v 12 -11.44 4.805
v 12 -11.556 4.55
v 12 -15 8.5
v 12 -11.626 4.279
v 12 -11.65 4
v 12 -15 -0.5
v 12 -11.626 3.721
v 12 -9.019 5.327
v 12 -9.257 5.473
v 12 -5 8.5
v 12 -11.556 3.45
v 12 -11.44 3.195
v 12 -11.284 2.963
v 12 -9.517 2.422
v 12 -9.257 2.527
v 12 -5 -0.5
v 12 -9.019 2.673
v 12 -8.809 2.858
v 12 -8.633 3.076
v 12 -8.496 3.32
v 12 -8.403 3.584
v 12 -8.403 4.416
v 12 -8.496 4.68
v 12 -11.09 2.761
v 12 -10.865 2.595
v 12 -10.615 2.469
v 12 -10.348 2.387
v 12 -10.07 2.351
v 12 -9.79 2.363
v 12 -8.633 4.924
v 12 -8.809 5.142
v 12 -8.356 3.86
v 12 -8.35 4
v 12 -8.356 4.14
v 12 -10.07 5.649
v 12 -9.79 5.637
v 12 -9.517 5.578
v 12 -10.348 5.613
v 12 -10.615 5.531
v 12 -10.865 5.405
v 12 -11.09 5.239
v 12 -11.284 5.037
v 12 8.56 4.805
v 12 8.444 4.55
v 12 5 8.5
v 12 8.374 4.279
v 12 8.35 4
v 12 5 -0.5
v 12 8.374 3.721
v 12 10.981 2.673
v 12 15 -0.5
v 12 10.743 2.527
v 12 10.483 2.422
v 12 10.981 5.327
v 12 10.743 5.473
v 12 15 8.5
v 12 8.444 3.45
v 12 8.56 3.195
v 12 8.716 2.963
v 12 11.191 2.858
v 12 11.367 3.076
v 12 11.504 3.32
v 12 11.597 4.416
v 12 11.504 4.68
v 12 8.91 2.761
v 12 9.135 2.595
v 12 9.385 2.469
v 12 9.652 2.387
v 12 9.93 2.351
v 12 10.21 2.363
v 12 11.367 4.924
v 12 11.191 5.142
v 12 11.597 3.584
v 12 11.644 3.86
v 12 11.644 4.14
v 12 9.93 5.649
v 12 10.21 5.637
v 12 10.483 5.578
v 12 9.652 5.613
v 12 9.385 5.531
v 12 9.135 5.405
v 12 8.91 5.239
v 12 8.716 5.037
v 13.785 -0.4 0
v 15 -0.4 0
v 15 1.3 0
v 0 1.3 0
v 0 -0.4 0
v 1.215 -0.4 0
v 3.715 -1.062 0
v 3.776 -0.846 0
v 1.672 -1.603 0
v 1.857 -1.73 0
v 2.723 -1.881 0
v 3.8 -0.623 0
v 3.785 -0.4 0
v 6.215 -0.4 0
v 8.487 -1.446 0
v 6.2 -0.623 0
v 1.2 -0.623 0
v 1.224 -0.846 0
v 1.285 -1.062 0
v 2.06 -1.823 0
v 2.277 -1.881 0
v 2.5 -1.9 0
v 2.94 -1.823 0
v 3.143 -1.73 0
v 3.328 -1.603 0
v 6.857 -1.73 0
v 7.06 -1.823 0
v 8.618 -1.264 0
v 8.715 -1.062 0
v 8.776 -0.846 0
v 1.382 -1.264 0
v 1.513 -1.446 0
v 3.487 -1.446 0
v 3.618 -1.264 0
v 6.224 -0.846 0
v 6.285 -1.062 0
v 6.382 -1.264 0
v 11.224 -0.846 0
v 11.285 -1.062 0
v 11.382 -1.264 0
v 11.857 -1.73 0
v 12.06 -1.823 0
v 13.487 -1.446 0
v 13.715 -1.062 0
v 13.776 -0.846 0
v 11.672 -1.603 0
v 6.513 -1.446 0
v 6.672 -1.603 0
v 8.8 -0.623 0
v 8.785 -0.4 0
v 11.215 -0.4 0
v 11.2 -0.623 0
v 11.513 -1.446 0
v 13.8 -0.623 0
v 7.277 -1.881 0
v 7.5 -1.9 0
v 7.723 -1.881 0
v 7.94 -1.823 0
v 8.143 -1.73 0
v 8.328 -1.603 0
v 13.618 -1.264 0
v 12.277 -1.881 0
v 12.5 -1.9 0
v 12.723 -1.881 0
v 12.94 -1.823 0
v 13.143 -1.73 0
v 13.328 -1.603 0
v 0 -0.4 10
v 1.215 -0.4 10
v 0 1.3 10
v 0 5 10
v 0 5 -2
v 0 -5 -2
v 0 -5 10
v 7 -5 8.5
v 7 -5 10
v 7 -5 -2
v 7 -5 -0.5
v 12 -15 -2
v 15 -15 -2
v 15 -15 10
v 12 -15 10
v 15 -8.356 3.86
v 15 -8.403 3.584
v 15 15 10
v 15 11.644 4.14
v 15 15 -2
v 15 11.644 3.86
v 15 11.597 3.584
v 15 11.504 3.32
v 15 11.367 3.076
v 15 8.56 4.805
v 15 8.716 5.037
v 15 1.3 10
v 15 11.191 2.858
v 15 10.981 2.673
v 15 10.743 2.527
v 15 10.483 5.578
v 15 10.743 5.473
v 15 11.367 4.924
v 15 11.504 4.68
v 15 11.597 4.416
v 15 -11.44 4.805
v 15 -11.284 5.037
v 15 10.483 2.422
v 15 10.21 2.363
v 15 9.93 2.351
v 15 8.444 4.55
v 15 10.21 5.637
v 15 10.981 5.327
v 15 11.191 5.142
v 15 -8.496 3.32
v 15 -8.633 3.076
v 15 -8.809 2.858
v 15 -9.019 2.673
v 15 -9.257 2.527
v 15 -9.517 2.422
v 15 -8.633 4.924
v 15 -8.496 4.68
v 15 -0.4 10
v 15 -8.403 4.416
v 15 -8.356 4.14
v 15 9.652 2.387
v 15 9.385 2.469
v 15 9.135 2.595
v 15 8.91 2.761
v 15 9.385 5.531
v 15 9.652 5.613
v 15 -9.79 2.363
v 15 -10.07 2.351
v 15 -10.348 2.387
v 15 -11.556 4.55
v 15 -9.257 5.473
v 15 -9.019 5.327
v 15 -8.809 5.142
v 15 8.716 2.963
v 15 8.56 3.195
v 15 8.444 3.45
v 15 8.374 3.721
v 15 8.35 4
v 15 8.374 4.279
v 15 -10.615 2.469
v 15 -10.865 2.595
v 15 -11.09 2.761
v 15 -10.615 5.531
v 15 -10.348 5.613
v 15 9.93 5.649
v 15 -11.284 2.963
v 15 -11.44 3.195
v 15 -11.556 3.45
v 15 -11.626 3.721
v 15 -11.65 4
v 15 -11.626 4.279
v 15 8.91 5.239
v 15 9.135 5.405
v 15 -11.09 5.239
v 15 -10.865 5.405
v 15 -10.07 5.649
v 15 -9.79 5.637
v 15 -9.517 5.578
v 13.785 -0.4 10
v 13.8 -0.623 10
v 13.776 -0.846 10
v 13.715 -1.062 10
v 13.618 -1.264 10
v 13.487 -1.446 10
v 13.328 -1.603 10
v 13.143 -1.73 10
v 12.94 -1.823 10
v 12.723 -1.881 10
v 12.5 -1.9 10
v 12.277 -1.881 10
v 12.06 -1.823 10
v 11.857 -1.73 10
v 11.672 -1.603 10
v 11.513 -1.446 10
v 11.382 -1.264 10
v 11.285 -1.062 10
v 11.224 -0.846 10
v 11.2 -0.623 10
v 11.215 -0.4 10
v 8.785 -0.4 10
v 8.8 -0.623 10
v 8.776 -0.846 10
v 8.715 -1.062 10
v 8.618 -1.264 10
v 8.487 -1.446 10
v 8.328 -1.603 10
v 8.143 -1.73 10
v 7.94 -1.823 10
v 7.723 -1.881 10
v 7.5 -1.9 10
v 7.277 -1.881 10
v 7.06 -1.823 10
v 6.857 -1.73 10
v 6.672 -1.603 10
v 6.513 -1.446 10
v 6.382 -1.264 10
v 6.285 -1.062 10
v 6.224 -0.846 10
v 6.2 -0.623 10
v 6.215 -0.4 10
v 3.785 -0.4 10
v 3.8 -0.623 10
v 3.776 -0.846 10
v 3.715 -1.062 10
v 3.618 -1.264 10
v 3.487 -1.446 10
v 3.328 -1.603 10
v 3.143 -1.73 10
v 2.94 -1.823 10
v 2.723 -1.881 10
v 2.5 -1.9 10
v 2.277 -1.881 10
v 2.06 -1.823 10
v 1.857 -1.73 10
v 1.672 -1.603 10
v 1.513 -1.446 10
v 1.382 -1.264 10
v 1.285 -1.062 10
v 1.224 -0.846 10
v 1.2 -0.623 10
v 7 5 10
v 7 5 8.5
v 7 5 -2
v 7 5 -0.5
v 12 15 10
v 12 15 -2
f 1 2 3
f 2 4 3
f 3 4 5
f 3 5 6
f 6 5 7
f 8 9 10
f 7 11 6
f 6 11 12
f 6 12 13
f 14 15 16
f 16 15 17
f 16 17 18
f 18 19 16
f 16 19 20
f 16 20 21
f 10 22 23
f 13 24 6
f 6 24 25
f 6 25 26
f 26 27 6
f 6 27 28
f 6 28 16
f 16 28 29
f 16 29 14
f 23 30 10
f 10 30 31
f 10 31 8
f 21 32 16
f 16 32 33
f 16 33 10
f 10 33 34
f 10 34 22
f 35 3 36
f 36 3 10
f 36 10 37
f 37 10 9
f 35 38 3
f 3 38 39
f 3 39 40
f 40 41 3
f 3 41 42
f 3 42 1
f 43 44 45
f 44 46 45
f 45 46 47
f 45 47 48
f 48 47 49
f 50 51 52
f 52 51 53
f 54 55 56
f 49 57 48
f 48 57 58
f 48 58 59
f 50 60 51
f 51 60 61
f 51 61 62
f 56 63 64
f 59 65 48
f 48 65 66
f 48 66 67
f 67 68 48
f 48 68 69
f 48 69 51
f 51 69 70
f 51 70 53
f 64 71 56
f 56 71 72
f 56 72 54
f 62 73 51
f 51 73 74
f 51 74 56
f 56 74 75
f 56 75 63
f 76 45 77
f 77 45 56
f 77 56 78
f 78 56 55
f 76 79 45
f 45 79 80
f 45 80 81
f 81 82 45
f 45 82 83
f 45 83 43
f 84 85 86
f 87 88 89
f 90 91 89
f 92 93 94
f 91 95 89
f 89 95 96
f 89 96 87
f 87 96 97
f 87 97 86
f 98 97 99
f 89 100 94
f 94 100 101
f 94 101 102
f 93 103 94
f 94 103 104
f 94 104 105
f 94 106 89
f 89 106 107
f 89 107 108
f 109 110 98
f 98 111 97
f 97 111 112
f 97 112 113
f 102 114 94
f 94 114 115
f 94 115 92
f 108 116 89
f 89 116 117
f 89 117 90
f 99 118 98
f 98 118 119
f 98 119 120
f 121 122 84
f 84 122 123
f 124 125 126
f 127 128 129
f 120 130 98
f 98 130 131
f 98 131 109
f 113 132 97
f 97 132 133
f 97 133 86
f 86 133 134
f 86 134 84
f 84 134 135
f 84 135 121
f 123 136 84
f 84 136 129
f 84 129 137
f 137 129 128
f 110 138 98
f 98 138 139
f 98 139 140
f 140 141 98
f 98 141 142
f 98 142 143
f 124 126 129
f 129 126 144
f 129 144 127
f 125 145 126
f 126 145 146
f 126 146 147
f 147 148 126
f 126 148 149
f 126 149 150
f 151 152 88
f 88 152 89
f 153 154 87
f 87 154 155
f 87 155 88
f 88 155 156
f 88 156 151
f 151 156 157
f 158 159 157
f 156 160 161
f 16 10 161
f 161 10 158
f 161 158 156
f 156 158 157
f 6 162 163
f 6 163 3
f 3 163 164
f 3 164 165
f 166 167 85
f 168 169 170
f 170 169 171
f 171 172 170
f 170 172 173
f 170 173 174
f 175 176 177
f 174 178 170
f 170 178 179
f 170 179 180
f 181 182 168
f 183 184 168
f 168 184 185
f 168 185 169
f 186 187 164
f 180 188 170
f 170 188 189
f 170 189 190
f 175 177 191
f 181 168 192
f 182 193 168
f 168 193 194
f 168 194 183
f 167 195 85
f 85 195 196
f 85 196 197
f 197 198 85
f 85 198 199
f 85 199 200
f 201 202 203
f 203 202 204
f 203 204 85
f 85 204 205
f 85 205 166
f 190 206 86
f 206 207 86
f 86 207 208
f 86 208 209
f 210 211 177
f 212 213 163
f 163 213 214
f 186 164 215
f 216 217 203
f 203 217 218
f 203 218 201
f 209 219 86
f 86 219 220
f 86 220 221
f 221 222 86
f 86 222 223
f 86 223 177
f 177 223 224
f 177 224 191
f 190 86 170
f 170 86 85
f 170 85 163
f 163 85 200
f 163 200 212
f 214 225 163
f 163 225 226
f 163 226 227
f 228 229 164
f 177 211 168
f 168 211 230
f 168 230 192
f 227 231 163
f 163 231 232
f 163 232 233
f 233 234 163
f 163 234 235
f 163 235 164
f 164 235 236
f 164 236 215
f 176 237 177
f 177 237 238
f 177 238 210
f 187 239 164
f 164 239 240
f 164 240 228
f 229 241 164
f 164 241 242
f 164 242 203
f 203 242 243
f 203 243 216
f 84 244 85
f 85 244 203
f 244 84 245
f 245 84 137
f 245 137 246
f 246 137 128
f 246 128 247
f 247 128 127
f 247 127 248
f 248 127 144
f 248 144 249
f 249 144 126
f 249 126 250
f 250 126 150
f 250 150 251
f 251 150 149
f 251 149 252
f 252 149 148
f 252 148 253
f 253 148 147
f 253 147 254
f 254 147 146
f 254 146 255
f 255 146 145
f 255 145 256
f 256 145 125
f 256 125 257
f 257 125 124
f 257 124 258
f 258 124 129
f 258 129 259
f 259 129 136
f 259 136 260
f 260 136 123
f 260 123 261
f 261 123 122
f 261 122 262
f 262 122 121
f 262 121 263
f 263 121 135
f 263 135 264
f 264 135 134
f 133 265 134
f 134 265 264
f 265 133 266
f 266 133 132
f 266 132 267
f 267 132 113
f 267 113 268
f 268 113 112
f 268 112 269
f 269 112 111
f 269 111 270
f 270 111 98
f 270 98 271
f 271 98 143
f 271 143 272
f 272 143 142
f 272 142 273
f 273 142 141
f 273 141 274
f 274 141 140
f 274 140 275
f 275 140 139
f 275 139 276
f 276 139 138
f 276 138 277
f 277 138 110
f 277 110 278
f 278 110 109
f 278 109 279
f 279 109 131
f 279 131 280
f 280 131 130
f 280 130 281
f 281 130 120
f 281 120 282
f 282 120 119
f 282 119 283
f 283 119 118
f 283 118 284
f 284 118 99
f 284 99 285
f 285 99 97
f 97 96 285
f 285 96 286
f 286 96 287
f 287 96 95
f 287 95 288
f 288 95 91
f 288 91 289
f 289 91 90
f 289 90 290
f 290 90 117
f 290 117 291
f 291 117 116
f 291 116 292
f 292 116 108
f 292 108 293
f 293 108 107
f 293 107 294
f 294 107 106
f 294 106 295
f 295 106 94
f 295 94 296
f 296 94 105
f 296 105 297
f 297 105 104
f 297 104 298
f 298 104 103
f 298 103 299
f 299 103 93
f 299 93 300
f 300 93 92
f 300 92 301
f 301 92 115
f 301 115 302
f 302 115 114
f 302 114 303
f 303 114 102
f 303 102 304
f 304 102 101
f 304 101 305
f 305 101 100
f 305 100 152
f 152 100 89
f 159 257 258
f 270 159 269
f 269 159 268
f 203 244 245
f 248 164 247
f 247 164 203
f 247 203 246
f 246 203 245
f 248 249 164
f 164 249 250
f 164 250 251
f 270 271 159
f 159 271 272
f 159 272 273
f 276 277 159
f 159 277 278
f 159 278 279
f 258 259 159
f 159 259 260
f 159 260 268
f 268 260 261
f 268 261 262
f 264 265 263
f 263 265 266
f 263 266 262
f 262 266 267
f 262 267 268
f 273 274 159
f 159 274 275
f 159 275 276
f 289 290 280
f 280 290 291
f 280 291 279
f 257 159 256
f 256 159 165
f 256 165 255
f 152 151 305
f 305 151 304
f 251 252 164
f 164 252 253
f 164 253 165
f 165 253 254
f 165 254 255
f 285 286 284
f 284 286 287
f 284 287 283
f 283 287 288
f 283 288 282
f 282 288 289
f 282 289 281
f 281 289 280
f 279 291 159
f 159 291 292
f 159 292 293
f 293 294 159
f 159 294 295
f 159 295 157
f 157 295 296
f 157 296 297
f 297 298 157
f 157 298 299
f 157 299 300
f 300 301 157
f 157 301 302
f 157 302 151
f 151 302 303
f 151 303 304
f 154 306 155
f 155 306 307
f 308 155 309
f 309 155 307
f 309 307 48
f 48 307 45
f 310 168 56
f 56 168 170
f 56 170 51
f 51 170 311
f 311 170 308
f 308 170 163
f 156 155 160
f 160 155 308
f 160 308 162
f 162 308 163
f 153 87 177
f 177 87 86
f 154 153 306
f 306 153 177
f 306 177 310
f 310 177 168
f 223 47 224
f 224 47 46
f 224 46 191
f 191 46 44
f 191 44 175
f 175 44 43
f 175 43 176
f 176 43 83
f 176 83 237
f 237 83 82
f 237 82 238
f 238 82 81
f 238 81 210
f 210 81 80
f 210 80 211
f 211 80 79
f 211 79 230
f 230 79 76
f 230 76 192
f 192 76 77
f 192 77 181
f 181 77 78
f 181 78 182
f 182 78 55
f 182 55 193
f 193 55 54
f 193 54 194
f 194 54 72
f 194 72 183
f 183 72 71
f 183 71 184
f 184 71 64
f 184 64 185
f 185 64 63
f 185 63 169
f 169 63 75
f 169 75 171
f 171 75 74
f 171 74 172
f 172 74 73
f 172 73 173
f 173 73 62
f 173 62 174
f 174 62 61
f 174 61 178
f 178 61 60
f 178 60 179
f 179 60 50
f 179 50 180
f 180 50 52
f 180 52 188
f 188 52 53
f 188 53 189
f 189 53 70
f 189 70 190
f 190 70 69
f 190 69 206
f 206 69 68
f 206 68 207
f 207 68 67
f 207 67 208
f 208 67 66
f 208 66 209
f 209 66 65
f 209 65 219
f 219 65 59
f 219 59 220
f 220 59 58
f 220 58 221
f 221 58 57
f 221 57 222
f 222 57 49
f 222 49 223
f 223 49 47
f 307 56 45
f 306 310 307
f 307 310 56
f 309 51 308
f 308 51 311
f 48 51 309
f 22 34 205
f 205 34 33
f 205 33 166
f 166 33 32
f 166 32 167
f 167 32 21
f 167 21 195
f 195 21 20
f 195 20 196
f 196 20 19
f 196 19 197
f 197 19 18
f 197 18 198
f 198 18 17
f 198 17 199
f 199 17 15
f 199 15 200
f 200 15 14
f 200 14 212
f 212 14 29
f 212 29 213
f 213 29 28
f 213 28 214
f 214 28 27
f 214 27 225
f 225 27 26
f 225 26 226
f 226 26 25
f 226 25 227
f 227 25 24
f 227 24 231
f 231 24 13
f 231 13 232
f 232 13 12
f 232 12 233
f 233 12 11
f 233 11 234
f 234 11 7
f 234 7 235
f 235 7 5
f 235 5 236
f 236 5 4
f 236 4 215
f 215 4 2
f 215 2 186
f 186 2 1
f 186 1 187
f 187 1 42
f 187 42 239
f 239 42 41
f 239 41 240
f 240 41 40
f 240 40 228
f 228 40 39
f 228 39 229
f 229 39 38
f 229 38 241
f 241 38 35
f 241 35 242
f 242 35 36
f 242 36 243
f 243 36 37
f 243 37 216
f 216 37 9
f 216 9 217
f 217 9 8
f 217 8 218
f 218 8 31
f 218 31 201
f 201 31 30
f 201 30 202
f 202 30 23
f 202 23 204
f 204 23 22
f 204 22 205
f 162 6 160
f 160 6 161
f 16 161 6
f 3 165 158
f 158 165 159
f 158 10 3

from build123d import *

# Parameters (mm, degrees)
BOSS_EXTRUDE1_DEPTH     = 10
BOSS_EXTRUDE2_DEPTH     = 2
CUT_EXTRUDE1_REACH      = 23.656
SKETCH5_R               = 1.65
RIB1_REACH              = 26.372
SKETCH4_WALL_W          = 61.924570316
SKETCH4_WALL_H          = 1.5
MIRROR2_COPY_1_REACH    = 26.372
MIRROR2_COPY_1_SKETCH_W = 61.924570316
MIRROR2_COPY_1_SKETCH_H = 1.5


with BuildPart() as part:
    # Sketch2 → Boss-Extrude1 (new body)
    with BuildSketch(Plane.XY):
        with BuildLine():
            Line((1, -0.6), (0, -0.6))
            Line((0, -0.6), (0, -5))
            Line((0, -5), (12, -5))
            Line((12, -5), (12, -15))
            Line((12, -15), (15, -15))
            Line((15, -15), (15, -0.6))
            Line((15, -0.6), (14, -0.6))
            ThreePointArc((14, -0.6), (12.5, -2.1), (11, -0.6))
            Line((11, -0.6), (9, -0.6))
            ThreePointArc((9, -0.6), (7.5, -2.1), (6, -0.6))
            Line((6, -0.6), (4, -0.6))
            ThreePointArc((4, -0.6), (2.5, -2.1), (1, -0.6))
        make_face()
        Polygon((12, 5), (0, 5), (0, 1.3), (15, 1.3), (15, 15), (12, 15), align=None)
        with BuildLine():
            Line((1.215476742, -0.4), (0, -0.4))
            Line((0, -0.4), (0, -0.6))
            Line((0, -0.6), (1, -0.6))
            ThreePointArc((1, -0.6), (2.5, -2.1), (4, -0.6))
            Line((4, -0.6), (6, -0.6))
            ThreePointArc((6, -0.6), (7.5, -2.1), (9, -0.6))
            Line((9, -0.6), (11, -0.6))
            ThreePointArc((11, -0.6), (12.5, -2.1), (14, -0.6))
            Line((14, -0.6), (15, -0.6))
            Line((15, -0.6), (15, -0.4))
            Line((15, -0.4), (13.784523258, -0.4))
            ThreePointArc((13.784523258, -0.4), (12.5, -1.9), (11.215476742, -0.4))
            Line((11.215476742, -0.4), (8.784523258, -0.4))
            ThreePointArc((8.784523258, -0.4), (7.5, -1.9), (6.215476742, -0.4))
            Line((6.215476742, -0.4), (3.784523258, -0.4))
            ThreePointArc((3.784523258, -0.4), (2.5, -1.9), (1.215476742, -0.4))
        make_face()
    extrude(amount=BOSS_EXTRUDE1_DEPTH)

    # Sketch2<4> → Boss-Extrude2 (add)
    with BuildSketch(Plane.XY):
        Polygon((0, 5), (0, -5), (12, -5), (12, -15), (15, -15), (15, 15), (12, 15), (12, 5), align=None)
    extrude(amount=-BOSS_EXTRUDE2_DEPTH)

    # Sketch5 → Cut-Extrude1 (cut, up to next)
    with BuildSketch(Plane.ZY.offset(-12), mode=Mode.PRIVATE) as cut_extrude1_sk1:
        with Locations(Location((4, 10, 0), (0, 0, 270))):
            Circle(SKETCH5_R)
    cut_extrude1_tool1 = extrude(cut_extrude1_sk1.sketch, amount=-CUT_EXTRUDE1_REACH, mode=Mode.PRIVATE) & part.part
    cut_extrude1 = cut_extrude1_tool1.solids().sort_by_distance((12, 10, 4))[0]
    add(cut_extrude1, mode=Mode.SUBTRACT)

    # Sketch4 wall → Rib1 (add, up to next)
    with BuildSketch(Plane(origin=(9.5, 10, 10), x_dir=(0.4472135955, 0.894427191, 0), z_dir=(-0.894427191, 0.4472135955, 0)), mode=Mode.PRIVATE) as rib1_sk1:
        with Locations((0, 0.75)):
            Rectangle(SKETCH4_WALL_W, SKETCH4_WALL_H)
    rib1_tool1 = extrude(rib1_sk1.sketch, amount=-RIB1_REACH, mode=Mode.PRIVATE) - part.part
    rib1 = rib1_tool1.solids().sort_by_distance((9.5, 10, 10))[0]
    add(rib1)

    # Mirror1: Rib1 across plane
    add(rib1.mirror(Plane.XY.offset(4)))

    # Mirror2: Cut-Extrude1, Rib1 across plane
    add(cut_extrude1.mirror(Plane.ZX), mode=Mode.SUBTRACT)
    add(rib1.mirror(Plane.ZX))

    # Mirror2 copy 1 sketch → Mirror2 copy 1 (add, up to next)
    with BuildSketch(Plane(origin=(9.5, -10, -2), x_dir=(0.4472135955, -0.894427191, 0), z_dir=(-0.894427191, -0.4472135955, 0)), mode=Mode.PRIVATE) as mirror2_copy_1_sk1:
        with Locations((0, 0.75)):
            Rectangle(MIRROR2_COPY_1_SKETCH_W, MIRROR2_COPY_1_SKETCH_H)
    mirror2_copy_1_tool1 = extrude(mirror2_copy_1_sk1.sketch, amount=-MIRROR2_COPY_1_REACH, mode=Mode.PRIVATE) - part.part
    add(mirror2_copy_1_tool1.solids().sort_by_distance((9.5, -10, -2))[0])


solid = part.part
